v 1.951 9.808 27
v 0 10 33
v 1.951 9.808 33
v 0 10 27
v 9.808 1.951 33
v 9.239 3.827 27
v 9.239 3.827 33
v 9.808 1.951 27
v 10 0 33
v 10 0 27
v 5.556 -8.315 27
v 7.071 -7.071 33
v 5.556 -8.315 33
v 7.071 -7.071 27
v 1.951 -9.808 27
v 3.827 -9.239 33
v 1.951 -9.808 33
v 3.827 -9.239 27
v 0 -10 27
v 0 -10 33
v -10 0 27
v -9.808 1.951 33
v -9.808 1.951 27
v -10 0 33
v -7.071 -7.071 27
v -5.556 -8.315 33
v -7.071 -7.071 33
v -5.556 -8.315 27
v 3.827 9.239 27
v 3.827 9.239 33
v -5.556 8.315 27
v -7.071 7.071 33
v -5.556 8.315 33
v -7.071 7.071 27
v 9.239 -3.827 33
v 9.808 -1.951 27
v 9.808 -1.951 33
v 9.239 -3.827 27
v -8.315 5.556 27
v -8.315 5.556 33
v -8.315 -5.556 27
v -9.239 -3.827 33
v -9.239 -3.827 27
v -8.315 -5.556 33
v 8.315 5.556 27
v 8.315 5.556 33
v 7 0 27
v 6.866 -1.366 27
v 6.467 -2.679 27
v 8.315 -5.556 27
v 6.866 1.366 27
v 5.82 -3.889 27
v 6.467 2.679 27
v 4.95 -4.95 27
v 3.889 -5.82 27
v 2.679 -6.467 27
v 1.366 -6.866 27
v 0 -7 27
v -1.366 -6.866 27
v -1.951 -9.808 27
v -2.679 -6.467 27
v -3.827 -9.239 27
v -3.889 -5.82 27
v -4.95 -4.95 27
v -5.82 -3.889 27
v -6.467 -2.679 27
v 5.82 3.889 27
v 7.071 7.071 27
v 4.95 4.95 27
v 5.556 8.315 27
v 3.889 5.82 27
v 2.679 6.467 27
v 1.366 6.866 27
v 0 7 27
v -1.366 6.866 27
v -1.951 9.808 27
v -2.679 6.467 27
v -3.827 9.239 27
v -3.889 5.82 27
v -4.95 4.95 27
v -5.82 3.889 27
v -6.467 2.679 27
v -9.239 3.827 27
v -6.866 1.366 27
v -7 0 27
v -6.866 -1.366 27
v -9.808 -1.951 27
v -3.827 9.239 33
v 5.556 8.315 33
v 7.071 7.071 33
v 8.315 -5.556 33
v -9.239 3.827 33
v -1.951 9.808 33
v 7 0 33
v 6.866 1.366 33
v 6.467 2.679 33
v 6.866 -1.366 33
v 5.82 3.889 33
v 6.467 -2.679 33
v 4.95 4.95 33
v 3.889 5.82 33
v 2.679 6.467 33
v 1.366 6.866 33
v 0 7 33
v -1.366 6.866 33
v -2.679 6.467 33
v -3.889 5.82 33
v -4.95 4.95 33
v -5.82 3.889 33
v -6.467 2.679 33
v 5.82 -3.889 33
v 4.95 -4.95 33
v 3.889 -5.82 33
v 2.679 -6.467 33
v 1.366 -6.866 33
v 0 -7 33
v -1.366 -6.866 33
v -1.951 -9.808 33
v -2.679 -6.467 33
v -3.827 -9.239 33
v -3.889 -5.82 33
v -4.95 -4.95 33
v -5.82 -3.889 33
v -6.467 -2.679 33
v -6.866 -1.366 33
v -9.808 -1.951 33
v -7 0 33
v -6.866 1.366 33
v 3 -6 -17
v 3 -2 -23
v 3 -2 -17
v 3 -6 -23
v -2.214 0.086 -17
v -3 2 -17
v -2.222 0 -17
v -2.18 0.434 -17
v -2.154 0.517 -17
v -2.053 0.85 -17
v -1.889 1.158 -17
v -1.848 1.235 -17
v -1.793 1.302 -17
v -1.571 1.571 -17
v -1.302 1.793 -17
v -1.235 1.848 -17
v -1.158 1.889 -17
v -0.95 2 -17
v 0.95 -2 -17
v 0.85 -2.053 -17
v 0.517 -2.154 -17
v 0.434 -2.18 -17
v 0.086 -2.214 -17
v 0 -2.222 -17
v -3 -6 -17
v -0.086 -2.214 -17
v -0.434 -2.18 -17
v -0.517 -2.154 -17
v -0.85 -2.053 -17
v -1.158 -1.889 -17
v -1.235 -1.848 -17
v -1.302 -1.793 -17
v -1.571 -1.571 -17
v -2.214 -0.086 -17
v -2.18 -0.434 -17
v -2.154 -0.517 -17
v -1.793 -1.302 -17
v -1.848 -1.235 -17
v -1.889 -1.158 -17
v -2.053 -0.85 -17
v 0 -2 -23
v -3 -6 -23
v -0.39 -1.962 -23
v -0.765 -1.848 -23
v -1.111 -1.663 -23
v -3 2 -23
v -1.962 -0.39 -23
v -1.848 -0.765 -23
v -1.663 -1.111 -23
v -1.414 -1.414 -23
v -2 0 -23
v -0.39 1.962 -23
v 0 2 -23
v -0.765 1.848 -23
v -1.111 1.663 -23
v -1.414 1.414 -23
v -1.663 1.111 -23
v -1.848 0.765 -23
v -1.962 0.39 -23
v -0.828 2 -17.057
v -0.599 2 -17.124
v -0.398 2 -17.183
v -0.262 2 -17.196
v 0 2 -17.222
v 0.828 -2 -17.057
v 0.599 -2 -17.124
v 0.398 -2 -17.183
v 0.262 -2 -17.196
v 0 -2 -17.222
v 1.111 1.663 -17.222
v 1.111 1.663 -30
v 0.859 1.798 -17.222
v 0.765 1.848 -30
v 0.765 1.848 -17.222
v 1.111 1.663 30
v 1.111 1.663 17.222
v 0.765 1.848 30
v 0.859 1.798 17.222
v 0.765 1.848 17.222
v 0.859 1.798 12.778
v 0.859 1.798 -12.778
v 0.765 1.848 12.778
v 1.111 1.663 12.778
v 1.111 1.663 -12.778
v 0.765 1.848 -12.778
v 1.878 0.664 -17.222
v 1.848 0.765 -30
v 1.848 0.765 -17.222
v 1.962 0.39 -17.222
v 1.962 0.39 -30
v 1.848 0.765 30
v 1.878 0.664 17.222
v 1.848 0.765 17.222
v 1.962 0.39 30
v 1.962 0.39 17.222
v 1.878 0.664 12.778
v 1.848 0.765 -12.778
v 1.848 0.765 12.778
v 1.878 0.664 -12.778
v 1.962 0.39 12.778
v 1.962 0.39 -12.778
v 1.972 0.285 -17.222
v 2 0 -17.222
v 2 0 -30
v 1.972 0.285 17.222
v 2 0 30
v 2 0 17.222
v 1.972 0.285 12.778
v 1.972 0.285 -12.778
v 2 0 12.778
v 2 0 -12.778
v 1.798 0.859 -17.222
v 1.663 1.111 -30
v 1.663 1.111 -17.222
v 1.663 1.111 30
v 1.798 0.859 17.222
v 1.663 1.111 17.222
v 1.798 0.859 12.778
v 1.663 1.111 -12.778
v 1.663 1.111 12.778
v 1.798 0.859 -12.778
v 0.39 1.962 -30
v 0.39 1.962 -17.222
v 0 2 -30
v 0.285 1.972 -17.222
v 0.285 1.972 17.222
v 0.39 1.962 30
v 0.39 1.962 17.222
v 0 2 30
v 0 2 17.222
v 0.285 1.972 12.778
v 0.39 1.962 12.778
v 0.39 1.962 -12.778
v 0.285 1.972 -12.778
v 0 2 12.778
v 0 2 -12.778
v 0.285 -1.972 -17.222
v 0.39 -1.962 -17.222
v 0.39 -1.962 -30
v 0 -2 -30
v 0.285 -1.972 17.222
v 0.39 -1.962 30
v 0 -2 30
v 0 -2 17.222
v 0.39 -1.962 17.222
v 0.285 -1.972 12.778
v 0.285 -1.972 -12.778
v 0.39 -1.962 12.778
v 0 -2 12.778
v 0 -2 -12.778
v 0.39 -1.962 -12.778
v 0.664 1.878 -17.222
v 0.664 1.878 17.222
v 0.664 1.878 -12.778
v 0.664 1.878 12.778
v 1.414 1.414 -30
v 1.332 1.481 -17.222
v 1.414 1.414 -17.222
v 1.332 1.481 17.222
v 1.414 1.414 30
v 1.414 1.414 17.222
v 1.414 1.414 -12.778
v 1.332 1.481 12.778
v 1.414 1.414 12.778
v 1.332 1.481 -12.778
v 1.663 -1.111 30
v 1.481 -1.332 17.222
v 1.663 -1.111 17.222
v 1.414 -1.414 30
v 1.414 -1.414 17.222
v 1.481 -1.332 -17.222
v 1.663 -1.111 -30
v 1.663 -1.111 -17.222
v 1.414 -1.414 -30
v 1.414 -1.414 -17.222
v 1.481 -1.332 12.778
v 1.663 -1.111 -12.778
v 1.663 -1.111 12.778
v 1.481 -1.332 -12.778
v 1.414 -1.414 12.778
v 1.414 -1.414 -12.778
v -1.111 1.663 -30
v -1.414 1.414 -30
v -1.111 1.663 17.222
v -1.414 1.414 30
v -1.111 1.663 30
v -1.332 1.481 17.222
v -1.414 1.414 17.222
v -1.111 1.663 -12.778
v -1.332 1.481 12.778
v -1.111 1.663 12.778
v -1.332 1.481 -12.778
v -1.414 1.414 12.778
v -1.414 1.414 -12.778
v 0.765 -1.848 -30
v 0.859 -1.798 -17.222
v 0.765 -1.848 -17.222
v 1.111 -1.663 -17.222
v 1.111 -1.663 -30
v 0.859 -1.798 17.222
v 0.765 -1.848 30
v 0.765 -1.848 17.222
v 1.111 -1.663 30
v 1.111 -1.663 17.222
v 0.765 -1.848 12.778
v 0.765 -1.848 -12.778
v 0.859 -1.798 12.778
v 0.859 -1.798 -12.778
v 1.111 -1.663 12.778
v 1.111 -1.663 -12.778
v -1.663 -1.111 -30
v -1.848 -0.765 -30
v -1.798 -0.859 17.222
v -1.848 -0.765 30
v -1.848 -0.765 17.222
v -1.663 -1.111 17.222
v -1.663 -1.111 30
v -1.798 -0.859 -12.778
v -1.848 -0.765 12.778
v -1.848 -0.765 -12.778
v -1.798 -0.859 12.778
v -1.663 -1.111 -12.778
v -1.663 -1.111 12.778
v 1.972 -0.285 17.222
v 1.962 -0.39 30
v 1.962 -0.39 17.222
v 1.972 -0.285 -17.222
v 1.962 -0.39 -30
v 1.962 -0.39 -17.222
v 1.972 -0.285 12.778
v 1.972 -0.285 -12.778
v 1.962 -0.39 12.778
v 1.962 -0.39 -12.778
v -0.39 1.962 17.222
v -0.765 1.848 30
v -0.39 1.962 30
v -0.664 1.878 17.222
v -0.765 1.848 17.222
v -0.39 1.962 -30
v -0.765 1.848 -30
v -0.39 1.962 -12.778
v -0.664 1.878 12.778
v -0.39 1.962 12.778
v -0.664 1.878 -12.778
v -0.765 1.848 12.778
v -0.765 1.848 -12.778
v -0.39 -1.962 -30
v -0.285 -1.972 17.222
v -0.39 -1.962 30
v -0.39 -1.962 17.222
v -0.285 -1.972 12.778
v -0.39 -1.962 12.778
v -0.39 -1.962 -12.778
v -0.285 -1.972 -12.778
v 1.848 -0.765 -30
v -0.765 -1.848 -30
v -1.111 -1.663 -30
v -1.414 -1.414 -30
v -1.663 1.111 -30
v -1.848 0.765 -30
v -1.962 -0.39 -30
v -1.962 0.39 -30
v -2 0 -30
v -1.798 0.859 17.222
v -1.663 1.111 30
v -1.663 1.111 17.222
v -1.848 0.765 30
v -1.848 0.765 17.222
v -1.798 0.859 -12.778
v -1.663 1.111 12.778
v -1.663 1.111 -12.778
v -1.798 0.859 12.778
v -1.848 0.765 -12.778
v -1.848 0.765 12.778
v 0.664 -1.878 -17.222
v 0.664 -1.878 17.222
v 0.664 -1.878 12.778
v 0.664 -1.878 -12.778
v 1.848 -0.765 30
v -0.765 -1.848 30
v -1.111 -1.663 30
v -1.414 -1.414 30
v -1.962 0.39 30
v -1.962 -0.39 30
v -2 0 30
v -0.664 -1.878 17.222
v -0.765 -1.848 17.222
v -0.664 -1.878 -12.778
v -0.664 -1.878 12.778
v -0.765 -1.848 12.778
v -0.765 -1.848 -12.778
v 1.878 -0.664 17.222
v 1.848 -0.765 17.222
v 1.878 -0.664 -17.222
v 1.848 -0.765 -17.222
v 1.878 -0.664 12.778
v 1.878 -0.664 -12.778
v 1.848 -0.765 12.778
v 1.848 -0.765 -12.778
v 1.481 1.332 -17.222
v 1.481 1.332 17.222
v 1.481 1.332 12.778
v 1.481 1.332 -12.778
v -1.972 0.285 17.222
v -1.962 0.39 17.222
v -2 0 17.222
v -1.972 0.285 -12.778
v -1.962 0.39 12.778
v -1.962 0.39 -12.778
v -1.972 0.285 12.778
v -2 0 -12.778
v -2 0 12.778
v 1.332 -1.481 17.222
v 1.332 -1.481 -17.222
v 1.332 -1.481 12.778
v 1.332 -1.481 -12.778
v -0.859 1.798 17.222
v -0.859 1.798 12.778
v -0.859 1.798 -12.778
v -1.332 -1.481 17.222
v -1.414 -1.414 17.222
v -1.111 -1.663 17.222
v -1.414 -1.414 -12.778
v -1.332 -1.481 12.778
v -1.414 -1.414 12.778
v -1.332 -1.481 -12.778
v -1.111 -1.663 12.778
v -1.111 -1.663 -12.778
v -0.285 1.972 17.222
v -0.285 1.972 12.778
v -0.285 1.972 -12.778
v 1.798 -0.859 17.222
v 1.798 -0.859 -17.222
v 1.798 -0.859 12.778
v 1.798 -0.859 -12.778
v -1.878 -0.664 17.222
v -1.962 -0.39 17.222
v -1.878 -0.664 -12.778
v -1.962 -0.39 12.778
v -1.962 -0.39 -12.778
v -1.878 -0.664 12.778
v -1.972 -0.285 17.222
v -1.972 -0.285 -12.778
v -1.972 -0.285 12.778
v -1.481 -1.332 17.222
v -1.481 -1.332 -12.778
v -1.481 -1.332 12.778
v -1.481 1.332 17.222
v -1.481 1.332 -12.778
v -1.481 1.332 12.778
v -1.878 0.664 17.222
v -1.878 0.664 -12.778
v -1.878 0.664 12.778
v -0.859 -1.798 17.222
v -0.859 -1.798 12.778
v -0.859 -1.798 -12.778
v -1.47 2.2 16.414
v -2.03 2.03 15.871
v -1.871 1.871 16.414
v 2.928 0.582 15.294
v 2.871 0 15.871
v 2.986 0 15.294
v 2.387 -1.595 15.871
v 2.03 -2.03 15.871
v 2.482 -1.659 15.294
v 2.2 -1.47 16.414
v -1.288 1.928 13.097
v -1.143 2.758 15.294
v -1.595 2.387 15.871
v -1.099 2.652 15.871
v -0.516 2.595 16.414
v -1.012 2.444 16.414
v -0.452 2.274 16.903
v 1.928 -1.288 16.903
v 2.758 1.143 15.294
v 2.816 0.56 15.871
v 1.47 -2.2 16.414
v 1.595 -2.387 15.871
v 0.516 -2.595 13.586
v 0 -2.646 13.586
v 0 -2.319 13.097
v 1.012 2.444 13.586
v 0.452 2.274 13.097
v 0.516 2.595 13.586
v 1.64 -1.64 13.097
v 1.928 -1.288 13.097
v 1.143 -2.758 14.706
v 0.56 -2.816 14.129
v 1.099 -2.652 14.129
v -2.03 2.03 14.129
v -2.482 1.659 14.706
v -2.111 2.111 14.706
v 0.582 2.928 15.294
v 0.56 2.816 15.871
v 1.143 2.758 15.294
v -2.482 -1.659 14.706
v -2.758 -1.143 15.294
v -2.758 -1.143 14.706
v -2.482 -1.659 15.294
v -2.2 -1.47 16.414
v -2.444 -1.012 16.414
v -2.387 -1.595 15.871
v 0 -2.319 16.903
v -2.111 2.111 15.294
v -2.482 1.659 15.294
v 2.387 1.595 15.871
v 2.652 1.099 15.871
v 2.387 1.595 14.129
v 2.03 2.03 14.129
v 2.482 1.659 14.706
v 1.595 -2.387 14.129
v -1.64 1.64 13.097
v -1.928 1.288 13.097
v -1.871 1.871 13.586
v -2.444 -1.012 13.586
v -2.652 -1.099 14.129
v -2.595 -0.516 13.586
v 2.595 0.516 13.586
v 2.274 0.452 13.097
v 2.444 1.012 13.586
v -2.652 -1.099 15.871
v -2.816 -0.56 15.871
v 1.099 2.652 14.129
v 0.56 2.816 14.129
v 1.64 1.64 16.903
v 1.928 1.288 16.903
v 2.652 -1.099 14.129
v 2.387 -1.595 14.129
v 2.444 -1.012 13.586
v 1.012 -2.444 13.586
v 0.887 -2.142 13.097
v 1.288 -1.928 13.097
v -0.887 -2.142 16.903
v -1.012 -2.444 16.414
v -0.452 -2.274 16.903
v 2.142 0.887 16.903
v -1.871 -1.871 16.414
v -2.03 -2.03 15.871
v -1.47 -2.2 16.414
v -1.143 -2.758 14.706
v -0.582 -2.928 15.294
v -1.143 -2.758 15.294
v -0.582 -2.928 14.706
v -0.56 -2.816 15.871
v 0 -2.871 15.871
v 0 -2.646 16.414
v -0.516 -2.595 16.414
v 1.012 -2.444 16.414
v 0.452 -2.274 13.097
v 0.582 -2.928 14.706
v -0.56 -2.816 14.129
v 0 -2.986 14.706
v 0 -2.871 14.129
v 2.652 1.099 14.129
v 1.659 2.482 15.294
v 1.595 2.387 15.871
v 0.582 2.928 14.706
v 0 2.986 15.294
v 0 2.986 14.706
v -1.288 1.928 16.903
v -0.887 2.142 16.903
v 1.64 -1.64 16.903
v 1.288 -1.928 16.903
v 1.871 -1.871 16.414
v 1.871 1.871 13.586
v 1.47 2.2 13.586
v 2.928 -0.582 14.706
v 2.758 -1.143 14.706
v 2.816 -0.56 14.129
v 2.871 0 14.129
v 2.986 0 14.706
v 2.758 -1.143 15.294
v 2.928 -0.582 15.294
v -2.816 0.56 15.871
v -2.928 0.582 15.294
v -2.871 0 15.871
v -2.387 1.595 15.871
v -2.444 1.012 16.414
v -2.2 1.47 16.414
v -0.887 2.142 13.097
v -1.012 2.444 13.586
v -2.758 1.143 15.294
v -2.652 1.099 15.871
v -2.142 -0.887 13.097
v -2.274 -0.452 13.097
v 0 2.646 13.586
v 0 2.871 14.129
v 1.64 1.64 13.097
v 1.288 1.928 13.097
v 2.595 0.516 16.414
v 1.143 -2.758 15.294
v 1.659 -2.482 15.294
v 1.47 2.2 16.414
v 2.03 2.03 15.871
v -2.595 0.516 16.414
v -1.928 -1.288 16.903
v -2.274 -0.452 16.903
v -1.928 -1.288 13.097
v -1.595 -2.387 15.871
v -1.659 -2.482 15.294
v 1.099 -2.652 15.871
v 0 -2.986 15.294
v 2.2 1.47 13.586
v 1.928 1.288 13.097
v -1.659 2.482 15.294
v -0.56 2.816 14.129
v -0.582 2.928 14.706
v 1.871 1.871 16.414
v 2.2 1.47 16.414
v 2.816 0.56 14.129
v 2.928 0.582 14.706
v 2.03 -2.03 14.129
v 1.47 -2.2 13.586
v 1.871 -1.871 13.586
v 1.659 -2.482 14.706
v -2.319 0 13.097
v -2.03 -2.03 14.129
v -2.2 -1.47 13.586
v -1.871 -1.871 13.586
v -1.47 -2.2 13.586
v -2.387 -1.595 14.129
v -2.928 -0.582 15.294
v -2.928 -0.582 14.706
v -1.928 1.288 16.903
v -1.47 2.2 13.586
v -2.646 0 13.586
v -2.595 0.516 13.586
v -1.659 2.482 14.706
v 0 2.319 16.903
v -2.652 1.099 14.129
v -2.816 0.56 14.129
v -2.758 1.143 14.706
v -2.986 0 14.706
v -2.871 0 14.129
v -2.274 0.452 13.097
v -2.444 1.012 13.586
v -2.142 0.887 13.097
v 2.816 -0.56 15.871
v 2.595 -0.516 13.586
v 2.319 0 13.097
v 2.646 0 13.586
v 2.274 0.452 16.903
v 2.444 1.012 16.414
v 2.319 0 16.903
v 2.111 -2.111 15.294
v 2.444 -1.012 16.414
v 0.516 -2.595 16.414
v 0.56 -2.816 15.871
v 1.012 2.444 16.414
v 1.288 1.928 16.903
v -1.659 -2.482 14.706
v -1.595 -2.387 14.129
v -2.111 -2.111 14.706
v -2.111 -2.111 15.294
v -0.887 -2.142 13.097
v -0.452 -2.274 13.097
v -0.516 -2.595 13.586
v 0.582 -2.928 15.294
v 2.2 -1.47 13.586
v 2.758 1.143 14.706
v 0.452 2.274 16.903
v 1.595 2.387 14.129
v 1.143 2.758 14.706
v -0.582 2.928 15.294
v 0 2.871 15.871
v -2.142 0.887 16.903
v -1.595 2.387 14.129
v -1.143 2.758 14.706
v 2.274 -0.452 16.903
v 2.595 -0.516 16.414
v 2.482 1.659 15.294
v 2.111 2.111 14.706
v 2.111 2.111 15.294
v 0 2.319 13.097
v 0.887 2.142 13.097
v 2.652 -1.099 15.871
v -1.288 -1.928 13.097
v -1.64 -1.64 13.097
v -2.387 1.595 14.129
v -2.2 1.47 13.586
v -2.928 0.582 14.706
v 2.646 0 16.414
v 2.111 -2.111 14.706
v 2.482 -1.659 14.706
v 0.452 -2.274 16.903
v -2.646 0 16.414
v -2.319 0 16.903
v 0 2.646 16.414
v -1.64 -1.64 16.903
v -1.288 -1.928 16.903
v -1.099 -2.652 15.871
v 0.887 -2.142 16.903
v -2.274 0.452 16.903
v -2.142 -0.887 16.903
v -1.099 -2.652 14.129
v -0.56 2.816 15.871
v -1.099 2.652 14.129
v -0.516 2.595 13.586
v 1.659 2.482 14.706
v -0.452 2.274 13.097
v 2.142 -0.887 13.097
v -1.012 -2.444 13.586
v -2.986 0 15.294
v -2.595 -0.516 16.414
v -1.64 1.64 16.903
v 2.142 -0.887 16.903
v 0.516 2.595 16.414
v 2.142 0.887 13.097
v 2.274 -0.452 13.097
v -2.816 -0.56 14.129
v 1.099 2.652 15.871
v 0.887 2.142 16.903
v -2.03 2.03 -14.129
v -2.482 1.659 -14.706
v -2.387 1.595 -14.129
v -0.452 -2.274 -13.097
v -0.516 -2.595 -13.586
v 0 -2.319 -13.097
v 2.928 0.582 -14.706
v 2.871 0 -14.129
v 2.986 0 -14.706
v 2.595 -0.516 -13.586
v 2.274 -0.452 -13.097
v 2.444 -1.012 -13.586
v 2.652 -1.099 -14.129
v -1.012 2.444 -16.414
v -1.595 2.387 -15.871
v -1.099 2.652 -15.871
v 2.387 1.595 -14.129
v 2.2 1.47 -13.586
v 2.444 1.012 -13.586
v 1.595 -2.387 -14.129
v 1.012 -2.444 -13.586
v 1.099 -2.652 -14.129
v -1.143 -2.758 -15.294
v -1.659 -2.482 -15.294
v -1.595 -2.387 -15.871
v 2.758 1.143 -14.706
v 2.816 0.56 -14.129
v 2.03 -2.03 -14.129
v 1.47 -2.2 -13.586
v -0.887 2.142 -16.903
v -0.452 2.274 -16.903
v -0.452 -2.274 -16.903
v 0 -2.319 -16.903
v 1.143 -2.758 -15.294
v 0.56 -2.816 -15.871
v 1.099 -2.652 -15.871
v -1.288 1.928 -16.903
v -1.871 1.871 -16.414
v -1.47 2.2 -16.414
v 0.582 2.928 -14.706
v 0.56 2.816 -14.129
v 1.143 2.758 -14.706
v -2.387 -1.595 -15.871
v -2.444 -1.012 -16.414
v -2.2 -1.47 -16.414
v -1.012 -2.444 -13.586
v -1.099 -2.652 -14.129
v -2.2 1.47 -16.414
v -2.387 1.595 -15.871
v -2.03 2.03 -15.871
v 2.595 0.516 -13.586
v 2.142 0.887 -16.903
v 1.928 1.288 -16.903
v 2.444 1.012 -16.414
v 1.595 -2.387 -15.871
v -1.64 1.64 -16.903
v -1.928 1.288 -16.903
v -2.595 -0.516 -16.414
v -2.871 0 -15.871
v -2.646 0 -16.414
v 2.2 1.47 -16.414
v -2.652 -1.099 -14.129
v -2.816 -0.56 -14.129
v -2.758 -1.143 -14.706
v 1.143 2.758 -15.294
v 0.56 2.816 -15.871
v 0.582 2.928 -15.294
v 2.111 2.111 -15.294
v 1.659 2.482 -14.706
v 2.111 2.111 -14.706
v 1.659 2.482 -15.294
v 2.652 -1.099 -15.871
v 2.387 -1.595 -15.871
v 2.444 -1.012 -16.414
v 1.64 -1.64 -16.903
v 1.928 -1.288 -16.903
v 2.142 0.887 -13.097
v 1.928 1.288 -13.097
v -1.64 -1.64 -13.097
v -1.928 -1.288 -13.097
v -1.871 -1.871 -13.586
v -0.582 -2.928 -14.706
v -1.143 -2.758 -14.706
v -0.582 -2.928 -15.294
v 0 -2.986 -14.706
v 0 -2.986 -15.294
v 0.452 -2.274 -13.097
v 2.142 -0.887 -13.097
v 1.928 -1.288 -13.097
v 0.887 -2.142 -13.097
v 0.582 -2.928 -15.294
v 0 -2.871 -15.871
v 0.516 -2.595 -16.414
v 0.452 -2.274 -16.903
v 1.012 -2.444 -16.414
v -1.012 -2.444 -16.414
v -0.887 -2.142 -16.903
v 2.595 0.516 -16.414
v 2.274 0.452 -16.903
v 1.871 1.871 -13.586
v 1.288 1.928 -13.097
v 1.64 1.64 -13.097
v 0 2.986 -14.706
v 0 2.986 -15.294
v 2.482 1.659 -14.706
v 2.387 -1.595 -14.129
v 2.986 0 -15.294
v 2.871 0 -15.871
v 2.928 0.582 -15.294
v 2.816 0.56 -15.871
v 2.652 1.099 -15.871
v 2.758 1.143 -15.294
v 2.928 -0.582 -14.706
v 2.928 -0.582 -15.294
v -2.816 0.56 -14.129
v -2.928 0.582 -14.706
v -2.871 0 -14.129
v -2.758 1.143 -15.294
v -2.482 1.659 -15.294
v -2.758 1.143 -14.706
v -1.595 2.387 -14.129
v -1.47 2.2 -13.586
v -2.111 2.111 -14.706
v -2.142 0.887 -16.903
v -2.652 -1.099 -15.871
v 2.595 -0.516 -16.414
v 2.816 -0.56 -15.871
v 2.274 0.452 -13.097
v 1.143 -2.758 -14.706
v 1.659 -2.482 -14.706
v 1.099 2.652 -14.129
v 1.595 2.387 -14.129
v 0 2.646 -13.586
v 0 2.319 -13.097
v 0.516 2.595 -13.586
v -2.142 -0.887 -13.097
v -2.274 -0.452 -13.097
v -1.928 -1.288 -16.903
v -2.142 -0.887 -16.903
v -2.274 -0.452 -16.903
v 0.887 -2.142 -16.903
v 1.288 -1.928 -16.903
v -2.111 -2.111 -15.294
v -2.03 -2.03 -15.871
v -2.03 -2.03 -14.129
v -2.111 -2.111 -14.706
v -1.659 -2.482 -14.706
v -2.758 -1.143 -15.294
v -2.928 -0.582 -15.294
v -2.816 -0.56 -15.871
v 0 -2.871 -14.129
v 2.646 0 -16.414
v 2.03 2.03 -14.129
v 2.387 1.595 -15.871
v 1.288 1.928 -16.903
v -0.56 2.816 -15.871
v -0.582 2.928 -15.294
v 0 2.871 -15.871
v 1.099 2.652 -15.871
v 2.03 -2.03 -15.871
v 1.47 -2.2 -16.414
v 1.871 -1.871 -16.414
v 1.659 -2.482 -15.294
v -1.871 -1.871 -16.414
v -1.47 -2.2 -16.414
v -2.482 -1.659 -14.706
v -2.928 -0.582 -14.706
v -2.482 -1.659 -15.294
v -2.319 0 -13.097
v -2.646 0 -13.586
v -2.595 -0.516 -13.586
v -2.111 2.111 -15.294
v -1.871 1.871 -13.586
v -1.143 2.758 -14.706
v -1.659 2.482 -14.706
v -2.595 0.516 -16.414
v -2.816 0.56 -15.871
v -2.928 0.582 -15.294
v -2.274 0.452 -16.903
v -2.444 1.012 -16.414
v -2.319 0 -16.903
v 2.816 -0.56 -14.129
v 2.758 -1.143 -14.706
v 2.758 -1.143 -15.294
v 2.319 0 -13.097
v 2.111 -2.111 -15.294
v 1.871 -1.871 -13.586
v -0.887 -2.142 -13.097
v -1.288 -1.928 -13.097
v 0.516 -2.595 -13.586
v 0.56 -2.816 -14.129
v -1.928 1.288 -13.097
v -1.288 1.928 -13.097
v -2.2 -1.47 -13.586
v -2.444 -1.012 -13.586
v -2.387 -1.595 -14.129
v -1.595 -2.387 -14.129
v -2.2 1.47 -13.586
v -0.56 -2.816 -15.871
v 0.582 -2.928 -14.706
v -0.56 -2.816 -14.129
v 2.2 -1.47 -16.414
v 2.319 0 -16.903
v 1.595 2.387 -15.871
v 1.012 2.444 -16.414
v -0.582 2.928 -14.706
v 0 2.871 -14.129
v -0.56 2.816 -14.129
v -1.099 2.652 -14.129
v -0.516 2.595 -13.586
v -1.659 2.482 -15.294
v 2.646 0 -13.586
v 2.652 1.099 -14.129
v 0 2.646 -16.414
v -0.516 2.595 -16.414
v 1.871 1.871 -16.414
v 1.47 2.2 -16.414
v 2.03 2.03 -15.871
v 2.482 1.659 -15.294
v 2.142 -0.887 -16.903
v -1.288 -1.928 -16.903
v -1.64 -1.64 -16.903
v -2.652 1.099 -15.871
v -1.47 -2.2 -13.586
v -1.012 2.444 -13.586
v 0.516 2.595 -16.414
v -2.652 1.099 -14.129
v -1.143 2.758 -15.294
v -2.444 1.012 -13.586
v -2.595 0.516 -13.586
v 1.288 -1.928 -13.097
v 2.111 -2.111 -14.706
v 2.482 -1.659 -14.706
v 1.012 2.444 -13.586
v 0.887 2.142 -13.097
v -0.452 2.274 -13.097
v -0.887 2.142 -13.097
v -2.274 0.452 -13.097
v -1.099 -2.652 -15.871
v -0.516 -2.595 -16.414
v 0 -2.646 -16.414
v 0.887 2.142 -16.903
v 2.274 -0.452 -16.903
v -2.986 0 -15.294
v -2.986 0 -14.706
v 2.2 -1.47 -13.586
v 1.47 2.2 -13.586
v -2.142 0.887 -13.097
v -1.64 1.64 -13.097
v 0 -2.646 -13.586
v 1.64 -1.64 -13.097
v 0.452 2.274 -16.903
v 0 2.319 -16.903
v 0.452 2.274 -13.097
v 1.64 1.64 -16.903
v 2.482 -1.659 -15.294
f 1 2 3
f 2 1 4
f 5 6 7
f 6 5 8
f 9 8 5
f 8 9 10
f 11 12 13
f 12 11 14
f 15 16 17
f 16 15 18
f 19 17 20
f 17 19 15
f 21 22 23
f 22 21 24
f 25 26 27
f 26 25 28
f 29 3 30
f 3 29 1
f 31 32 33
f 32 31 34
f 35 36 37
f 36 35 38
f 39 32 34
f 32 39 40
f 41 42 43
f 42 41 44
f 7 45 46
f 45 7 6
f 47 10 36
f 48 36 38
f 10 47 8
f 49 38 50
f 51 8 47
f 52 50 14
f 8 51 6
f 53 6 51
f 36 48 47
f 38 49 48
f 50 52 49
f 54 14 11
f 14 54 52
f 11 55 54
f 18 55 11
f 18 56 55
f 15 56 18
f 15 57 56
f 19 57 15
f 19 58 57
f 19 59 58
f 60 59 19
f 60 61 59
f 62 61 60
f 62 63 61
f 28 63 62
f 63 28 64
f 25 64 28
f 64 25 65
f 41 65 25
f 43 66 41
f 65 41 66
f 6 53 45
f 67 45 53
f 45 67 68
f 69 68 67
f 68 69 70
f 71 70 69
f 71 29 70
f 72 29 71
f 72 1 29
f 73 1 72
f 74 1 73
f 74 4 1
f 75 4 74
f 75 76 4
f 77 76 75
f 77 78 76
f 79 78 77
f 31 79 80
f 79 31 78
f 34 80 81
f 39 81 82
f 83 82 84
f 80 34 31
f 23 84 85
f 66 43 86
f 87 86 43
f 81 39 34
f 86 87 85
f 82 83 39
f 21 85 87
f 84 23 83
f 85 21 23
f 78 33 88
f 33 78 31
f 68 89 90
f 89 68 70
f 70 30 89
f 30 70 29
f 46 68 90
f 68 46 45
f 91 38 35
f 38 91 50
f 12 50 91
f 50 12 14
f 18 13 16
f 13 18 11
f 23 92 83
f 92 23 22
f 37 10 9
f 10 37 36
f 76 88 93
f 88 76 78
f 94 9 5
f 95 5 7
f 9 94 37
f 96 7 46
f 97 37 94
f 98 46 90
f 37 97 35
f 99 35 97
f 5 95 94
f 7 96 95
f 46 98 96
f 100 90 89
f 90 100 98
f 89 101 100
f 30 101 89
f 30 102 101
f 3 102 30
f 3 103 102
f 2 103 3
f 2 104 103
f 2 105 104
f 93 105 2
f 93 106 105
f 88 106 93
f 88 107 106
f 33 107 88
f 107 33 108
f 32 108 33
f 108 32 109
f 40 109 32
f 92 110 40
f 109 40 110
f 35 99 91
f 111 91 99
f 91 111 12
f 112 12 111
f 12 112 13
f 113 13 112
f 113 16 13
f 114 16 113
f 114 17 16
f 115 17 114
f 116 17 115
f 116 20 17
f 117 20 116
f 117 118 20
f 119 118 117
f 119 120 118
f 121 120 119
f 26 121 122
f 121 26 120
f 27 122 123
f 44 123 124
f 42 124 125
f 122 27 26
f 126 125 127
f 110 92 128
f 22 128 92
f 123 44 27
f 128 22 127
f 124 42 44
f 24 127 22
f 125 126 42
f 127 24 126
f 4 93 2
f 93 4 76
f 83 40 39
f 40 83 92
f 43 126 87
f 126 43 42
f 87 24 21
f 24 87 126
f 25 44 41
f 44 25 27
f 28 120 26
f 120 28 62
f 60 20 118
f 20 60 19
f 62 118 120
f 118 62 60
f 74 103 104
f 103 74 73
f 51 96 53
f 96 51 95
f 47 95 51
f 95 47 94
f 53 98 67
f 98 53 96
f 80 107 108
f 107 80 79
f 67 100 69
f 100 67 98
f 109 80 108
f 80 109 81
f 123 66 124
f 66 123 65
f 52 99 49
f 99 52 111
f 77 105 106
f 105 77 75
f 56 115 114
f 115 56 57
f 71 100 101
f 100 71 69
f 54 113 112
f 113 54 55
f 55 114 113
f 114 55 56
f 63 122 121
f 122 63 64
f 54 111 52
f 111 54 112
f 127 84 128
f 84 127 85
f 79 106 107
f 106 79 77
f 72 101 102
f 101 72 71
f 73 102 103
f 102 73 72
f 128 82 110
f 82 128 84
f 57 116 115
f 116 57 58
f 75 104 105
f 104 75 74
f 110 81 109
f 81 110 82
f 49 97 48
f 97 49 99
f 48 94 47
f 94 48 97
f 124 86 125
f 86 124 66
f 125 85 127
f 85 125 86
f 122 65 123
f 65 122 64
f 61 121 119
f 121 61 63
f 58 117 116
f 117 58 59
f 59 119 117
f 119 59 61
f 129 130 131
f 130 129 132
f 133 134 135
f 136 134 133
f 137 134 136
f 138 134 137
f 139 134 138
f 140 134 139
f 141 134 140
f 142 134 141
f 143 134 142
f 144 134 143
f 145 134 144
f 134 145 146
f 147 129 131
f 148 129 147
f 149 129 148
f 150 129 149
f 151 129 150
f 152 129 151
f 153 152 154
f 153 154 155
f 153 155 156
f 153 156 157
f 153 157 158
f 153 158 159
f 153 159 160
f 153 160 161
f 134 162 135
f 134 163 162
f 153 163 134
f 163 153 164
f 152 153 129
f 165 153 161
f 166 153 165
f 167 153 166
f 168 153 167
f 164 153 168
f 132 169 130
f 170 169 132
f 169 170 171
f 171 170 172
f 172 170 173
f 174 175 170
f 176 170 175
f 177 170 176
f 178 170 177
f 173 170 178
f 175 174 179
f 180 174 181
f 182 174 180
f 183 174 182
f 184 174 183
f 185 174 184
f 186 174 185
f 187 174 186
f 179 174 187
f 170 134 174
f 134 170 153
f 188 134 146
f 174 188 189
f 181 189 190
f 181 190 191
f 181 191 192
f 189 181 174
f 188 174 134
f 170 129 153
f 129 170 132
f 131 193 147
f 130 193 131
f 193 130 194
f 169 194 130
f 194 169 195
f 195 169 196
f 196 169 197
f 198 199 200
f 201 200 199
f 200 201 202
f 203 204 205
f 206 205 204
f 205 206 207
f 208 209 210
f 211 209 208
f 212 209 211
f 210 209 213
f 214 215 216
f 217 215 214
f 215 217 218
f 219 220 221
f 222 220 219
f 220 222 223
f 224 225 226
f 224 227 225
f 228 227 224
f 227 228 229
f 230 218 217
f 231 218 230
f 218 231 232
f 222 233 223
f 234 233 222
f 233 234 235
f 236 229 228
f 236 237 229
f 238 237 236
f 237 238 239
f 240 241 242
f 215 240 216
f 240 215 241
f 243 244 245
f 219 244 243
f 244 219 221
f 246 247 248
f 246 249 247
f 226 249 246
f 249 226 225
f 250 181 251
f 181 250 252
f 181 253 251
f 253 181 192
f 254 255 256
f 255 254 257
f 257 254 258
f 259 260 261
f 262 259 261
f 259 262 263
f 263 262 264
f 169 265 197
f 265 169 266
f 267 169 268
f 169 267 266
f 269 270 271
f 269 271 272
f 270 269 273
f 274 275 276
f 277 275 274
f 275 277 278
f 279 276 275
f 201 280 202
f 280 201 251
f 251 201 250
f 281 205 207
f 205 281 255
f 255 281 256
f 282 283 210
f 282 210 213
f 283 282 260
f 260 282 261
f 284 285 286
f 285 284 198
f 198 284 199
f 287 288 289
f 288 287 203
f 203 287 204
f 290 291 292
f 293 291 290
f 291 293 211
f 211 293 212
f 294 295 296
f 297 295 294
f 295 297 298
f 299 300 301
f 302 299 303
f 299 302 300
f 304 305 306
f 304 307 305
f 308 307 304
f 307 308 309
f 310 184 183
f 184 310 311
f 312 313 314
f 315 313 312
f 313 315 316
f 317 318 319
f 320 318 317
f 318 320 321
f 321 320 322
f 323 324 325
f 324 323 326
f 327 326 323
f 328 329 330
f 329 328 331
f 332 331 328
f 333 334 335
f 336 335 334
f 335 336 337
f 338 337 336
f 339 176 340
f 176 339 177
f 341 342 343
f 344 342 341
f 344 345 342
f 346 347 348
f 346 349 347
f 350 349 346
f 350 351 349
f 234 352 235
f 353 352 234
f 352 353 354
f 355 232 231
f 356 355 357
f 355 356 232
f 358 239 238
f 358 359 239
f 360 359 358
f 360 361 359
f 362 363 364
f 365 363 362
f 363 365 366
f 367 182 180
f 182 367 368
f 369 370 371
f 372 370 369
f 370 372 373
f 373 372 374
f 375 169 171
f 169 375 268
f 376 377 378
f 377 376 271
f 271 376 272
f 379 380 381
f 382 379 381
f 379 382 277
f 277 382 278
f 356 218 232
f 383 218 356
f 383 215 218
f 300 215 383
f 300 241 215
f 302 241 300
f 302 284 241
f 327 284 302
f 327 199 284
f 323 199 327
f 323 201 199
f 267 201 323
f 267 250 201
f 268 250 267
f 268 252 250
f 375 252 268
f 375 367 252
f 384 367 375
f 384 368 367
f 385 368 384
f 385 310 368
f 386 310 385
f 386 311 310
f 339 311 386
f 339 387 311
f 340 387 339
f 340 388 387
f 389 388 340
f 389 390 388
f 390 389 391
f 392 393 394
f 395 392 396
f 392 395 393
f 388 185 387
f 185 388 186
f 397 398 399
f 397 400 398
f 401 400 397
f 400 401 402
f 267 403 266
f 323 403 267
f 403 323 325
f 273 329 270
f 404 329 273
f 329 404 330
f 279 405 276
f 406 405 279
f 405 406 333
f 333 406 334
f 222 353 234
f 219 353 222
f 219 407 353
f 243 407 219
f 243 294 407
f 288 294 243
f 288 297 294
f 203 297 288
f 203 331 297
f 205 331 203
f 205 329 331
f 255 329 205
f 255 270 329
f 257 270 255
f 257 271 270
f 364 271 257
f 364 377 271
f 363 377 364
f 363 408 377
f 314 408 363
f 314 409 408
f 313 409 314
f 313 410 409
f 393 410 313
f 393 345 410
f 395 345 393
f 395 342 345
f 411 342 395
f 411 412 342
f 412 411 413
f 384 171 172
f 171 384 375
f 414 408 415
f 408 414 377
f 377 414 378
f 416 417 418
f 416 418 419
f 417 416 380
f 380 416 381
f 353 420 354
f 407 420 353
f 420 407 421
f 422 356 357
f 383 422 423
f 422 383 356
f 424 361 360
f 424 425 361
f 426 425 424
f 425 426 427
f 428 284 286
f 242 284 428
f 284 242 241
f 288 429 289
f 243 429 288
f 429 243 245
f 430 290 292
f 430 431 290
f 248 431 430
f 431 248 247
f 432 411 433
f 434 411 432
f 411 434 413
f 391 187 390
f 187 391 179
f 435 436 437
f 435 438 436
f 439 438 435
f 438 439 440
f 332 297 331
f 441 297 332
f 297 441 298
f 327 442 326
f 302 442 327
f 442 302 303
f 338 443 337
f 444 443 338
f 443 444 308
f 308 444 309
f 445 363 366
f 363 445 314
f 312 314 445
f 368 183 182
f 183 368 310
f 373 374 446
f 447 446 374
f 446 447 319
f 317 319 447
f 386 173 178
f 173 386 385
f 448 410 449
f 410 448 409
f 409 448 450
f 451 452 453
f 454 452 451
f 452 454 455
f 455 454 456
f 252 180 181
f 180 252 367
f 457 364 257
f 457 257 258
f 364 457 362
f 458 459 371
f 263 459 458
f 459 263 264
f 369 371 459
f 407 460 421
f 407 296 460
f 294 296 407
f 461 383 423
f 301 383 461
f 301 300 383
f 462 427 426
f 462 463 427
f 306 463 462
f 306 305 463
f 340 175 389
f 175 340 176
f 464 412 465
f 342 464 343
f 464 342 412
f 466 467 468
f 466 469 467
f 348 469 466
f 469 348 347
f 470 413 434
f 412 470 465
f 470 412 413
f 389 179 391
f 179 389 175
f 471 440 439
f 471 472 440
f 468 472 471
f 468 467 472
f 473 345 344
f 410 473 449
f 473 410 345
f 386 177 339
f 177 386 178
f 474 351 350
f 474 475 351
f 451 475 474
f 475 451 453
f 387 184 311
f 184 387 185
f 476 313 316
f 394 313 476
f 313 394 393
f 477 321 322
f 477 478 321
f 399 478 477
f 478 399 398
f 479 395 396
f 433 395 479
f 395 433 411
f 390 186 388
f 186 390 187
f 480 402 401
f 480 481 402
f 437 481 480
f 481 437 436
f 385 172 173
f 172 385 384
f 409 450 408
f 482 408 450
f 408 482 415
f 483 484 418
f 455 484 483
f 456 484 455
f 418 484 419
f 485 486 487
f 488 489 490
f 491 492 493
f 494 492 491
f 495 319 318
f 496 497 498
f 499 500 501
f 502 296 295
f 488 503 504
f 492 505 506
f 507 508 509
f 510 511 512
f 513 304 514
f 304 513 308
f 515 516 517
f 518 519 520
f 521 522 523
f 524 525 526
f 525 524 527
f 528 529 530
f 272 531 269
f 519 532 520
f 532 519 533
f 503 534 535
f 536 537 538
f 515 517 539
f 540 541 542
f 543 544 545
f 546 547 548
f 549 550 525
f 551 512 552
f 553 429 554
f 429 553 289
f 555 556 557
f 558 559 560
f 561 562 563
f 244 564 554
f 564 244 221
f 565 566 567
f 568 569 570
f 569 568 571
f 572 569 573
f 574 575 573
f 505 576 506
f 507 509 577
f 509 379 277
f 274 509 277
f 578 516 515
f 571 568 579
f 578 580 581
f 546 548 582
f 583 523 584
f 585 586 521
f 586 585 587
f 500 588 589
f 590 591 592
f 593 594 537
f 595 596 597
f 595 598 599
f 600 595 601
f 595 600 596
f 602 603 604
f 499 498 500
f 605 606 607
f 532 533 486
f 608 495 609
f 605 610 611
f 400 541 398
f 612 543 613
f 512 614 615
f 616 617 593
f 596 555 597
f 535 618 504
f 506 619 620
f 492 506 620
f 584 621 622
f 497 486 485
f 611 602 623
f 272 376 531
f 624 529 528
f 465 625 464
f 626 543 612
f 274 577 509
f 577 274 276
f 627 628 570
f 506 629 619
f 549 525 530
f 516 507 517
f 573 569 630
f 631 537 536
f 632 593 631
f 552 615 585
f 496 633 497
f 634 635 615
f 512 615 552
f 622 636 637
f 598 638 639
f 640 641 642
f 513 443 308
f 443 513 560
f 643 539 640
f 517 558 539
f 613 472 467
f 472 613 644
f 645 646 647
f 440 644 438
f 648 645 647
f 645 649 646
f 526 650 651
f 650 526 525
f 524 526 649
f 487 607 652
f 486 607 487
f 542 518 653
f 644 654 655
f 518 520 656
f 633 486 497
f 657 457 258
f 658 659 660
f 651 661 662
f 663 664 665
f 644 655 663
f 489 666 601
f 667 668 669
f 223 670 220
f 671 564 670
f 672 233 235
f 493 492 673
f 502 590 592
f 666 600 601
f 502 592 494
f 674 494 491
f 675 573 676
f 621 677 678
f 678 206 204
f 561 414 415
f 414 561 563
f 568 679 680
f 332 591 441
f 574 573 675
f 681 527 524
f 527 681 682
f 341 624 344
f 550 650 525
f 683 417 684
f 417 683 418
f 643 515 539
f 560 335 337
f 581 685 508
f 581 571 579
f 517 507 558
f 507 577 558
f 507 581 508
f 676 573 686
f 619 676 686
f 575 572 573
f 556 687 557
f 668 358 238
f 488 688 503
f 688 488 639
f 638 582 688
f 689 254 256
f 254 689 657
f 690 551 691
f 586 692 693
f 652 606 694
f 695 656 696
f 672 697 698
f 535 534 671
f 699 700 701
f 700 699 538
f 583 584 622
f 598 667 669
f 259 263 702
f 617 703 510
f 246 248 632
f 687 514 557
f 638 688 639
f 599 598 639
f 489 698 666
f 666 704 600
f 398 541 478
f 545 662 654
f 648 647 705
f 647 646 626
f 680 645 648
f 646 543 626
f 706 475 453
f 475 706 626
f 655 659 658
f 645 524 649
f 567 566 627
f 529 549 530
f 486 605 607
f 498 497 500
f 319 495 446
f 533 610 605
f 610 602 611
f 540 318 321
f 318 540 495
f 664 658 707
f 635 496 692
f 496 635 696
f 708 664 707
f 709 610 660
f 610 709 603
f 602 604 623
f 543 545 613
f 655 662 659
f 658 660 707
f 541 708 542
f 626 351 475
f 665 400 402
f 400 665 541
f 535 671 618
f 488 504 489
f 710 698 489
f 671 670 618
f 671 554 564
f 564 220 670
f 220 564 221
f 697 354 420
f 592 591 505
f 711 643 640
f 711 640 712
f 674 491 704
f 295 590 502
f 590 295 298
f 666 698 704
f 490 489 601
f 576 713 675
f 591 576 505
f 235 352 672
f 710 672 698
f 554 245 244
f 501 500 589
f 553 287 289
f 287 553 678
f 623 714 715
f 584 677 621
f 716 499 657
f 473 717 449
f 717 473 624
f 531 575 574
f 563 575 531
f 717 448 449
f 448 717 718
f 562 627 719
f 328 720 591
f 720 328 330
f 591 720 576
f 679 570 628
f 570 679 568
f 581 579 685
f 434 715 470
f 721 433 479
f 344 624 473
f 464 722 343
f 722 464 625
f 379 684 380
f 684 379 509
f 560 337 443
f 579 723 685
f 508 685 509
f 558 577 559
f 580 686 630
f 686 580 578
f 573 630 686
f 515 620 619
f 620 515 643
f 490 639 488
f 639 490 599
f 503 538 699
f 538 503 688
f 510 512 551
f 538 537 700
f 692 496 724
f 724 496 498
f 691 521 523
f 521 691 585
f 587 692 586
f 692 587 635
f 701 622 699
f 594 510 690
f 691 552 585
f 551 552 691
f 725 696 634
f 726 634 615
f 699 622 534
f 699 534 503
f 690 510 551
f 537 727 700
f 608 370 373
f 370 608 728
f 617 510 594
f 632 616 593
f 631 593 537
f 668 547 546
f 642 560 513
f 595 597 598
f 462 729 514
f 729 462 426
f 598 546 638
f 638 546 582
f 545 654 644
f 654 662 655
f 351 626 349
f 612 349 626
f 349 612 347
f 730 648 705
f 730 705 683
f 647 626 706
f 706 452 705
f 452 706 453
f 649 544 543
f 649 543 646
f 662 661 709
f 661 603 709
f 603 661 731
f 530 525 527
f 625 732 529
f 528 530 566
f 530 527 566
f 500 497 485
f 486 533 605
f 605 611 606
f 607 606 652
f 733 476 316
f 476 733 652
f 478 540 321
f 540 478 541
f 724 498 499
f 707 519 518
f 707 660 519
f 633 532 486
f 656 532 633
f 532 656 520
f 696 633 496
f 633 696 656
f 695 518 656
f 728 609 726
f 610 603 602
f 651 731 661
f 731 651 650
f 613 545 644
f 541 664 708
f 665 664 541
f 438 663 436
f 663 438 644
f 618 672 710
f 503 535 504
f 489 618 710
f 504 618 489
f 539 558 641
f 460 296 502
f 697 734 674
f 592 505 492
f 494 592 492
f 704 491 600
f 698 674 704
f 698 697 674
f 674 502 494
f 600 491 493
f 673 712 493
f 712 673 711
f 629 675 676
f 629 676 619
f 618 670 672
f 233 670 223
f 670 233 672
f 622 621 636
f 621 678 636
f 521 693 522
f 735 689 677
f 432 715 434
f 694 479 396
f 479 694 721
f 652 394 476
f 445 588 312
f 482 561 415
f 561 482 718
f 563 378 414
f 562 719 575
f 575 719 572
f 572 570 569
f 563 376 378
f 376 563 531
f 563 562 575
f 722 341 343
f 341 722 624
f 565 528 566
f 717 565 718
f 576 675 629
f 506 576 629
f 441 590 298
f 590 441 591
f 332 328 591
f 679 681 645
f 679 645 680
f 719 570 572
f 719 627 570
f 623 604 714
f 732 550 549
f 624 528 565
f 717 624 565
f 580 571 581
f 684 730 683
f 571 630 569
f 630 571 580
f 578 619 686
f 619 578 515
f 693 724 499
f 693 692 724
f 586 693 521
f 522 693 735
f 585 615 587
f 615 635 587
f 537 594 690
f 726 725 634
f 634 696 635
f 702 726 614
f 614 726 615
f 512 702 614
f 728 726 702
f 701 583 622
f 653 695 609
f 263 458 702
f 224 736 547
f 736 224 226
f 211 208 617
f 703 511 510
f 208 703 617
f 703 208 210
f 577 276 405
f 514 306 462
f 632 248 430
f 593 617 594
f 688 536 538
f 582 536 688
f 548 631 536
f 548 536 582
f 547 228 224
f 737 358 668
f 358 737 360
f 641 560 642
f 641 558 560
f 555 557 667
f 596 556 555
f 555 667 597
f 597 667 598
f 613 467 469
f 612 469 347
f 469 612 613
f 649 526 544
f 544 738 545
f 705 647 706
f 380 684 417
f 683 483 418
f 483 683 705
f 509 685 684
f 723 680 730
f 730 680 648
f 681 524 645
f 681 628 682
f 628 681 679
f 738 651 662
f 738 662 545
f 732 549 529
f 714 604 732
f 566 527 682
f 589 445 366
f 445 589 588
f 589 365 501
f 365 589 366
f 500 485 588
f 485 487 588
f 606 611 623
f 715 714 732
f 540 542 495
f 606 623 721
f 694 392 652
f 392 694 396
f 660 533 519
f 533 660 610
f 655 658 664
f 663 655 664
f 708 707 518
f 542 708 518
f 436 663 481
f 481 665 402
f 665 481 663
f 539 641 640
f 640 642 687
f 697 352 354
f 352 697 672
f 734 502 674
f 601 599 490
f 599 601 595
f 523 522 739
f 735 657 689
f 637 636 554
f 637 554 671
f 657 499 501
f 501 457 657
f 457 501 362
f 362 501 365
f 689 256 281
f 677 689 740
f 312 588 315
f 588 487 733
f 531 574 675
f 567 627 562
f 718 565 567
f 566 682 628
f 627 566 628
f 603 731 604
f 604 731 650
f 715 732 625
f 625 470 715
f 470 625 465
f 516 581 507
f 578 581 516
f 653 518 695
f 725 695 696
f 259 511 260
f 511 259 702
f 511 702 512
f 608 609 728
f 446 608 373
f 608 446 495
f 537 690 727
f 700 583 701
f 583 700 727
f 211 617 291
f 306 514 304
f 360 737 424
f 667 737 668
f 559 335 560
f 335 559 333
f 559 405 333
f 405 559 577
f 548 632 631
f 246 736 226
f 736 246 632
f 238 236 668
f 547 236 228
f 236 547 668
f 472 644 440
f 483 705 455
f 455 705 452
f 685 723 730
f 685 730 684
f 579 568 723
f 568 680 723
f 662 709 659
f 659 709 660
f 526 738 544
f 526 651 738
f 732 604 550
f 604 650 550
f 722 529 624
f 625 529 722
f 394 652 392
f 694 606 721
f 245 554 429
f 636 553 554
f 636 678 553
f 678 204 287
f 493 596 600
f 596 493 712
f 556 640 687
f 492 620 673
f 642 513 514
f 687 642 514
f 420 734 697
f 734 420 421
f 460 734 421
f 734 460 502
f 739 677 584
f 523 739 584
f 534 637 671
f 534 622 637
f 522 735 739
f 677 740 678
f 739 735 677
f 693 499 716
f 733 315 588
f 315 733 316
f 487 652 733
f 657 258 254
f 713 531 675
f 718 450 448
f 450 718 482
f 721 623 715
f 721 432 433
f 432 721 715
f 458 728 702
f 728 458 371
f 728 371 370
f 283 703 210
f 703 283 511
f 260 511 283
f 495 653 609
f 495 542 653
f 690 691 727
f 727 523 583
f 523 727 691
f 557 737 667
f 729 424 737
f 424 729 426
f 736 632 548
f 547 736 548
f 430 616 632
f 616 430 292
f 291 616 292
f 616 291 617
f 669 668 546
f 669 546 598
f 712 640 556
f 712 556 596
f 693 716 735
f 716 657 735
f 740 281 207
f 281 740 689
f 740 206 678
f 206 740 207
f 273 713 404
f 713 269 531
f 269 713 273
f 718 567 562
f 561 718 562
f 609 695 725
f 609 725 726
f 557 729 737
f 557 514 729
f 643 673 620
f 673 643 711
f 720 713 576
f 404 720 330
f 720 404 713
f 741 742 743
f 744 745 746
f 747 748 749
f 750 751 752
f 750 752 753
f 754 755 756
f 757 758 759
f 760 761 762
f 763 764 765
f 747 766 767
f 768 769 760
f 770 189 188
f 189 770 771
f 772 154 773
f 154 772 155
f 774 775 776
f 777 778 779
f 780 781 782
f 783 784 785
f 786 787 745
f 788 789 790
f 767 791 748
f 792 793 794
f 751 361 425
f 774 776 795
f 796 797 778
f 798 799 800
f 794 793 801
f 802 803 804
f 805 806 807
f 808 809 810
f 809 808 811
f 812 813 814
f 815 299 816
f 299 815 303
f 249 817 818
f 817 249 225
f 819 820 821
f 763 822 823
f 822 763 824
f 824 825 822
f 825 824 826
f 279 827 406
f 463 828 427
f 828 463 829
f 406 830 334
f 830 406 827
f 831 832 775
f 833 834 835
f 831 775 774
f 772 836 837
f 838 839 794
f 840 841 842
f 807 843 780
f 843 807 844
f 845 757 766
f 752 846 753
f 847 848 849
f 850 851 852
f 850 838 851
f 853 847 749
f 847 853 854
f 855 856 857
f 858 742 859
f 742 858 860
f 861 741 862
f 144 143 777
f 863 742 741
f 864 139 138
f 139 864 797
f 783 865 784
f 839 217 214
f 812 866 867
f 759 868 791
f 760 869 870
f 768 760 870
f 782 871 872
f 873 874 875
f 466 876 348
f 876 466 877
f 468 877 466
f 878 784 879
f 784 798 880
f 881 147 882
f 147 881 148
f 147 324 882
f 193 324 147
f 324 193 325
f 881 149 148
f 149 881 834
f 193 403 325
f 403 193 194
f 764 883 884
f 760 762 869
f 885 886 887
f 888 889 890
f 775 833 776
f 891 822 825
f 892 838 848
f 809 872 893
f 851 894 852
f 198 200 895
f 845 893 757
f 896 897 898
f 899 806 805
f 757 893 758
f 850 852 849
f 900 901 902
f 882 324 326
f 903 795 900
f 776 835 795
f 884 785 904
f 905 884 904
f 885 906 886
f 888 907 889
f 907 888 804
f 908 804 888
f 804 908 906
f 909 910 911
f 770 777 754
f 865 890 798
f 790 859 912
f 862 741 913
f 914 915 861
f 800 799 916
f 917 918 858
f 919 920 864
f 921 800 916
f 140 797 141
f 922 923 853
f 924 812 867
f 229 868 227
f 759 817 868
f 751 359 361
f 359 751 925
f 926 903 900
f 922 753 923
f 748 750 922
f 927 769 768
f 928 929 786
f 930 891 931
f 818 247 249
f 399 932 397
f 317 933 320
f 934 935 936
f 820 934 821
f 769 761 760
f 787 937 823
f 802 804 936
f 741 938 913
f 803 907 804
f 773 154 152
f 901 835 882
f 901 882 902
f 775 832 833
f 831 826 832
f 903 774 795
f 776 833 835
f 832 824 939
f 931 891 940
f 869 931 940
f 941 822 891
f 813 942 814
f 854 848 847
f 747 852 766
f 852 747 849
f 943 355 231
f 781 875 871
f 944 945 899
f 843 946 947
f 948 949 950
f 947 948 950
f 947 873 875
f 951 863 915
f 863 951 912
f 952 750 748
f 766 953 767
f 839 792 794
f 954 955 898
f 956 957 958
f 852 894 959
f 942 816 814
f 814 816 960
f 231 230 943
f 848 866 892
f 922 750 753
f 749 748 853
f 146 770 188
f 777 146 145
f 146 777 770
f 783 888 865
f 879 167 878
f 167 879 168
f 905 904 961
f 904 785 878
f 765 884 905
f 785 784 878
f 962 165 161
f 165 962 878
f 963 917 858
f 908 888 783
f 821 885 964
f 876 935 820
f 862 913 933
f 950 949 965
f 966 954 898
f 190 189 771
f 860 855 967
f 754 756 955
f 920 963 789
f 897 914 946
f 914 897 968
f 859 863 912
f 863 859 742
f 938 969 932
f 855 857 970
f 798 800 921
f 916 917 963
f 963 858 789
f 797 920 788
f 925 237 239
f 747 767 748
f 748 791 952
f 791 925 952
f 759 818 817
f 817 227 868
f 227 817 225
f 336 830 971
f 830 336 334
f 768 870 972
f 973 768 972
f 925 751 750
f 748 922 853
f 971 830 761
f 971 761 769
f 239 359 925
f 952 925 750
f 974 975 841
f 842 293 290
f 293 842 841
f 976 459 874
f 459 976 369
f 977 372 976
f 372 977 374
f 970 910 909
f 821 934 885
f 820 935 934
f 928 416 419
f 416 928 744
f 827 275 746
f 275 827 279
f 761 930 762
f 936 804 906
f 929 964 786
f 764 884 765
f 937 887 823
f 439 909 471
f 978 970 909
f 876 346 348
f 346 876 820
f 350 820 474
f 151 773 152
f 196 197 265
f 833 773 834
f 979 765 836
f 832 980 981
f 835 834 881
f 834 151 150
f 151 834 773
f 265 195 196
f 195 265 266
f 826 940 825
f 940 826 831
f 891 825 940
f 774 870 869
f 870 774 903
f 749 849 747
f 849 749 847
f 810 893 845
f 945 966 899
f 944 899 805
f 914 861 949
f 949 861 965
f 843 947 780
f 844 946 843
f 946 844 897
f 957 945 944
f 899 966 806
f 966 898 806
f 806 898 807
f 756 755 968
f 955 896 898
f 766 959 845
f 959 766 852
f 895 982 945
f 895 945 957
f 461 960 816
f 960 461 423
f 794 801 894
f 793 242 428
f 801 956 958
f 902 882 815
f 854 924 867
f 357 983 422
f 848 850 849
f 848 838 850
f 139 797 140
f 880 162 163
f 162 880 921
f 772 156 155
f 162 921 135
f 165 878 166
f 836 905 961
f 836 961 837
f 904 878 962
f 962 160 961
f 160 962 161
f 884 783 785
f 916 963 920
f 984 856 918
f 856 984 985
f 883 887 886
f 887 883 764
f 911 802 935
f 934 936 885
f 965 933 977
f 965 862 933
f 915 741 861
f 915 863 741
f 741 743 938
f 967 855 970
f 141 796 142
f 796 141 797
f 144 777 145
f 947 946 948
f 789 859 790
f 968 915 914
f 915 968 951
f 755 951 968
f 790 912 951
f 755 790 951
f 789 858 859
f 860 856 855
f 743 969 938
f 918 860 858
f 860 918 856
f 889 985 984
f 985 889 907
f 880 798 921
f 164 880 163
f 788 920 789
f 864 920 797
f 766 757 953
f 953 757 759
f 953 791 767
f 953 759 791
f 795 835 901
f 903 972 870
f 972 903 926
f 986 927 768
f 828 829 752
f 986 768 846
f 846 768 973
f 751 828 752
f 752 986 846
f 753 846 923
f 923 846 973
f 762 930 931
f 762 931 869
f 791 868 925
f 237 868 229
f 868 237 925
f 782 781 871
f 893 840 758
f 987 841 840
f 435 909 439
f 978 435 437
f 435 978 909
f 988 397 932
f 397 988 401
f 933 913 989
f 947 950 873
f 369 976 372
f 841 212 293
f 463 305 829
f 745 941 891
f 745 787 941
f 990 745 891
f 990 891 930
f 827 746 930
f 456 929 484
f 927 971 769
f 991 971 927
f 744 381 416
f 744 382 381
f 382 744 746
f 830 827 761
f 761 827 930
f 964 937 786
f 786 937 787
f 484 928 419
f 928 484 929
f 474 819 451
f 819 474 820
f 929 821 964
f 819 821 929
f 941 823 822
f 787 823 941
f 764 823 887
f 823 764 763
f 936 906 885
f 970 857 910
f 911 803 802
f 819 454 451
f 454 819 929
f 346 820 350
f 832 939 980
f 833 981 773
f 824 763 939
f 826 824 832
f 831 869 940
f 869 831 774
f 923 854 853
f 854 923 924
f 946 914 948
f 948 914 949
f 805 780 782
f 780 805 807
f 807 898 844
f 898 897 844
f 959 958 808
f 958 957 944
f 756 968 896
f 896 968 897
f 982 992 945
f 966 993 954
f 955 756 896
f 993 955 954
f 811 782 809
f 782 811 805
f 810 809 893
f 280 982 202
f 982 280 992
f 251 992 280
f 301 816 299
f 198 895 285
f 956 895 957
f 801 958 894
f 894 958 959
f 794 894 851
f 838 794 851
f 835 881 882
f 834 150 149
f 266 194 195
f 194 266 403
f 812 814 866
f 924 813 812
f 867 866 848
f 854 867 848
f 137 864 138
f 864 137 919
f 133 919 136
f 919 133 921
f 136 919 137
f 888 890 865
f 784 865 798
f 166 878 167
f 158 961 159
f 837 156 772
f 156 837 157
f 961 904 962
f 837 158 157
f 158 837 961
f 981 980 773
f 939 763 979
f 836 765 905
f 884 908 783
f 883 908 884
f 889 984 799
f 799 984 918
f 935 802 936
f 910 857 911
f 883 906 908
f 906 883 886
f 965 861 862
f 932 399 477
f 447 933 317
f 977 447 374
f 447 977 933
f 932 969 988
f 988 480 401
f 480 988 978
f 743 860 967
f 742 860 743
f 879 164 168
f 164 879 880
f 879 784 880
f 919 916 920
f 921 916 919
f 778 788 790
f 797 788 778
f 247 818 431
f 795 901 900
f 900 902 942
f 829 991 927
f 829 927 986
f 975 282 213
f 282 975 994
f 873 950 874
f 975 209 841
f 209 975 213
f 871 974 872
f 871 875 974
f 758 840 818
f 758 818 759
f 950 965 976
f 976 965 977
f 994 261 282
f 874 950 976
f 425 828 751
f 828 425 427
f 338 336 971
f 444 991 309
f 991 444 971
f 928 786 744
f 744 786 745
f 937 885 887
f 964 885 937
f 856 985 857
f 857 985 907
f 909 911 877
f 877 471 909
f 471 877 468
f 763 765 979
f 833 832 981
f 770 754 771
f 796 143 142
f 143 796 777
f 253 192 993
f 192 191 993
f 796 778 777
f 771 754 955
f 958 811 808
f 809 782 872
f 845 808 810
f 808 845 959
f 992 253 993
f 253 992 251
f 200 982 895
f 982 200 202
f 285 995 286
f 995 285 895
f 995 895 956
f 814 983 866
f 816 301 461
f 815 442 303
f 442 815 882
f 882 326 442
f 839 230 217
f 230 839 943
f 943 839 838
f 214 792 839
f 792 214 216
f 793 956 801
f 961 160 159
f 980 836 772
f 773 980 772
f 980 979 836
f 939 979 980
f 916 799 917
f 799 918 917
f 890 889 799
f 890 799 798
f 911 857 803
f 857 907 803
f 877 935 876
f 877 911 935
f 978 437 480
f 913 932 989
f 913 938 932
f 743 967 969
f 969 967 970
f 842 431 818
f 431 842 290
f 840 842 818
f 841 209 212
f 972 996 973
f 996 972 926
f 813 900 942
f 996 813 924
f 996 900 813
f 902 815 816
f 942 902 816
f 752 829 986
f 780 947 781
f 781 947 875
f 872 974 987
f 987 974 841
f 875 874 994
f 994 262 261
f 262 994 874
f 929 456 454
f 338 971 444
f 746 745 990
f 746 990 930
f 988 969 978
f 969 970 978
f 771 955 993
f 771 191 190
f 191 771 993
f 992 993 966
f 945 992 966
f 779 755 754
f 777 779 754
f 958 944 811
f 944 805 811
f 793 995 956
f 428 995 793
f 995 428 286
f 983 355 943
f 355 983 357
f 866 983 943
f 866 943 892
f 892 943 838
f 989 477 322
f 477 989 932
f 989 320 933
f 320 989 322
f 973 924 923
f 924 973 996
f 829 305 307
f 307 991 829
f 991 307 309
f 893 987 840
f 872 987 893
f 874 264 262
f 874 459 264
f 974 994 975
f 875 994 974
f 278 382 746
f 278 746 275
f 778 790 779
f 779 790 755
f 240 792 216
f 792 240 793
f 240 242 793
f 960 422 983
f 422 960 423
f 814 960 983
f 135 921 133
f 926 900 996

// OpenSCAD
$fn = 32;

// Simplified Skeleton Key

// 1. Shaft
cylinder(h = 60, r = 2, center = true);

// 2. Bow (Simple ring)
translate([0, 0, 30])
difference() {
    cylinder(h = 6, r = 10, center = true);
    cylinder(h = 8, r = 7, center = true);
}

// 3. Bit
translate([0, -2, -20])
difference() {
    cube([6, 8, 6], center = true);
    translate([2, 2, 0]) cube([4, 4, 8], center = true);
}

// 4. Simple Ball Decoration
translate([0, 0, 15]) sphere(r = 3);
translate([0, 0, -15]) sphere(r = 3);
